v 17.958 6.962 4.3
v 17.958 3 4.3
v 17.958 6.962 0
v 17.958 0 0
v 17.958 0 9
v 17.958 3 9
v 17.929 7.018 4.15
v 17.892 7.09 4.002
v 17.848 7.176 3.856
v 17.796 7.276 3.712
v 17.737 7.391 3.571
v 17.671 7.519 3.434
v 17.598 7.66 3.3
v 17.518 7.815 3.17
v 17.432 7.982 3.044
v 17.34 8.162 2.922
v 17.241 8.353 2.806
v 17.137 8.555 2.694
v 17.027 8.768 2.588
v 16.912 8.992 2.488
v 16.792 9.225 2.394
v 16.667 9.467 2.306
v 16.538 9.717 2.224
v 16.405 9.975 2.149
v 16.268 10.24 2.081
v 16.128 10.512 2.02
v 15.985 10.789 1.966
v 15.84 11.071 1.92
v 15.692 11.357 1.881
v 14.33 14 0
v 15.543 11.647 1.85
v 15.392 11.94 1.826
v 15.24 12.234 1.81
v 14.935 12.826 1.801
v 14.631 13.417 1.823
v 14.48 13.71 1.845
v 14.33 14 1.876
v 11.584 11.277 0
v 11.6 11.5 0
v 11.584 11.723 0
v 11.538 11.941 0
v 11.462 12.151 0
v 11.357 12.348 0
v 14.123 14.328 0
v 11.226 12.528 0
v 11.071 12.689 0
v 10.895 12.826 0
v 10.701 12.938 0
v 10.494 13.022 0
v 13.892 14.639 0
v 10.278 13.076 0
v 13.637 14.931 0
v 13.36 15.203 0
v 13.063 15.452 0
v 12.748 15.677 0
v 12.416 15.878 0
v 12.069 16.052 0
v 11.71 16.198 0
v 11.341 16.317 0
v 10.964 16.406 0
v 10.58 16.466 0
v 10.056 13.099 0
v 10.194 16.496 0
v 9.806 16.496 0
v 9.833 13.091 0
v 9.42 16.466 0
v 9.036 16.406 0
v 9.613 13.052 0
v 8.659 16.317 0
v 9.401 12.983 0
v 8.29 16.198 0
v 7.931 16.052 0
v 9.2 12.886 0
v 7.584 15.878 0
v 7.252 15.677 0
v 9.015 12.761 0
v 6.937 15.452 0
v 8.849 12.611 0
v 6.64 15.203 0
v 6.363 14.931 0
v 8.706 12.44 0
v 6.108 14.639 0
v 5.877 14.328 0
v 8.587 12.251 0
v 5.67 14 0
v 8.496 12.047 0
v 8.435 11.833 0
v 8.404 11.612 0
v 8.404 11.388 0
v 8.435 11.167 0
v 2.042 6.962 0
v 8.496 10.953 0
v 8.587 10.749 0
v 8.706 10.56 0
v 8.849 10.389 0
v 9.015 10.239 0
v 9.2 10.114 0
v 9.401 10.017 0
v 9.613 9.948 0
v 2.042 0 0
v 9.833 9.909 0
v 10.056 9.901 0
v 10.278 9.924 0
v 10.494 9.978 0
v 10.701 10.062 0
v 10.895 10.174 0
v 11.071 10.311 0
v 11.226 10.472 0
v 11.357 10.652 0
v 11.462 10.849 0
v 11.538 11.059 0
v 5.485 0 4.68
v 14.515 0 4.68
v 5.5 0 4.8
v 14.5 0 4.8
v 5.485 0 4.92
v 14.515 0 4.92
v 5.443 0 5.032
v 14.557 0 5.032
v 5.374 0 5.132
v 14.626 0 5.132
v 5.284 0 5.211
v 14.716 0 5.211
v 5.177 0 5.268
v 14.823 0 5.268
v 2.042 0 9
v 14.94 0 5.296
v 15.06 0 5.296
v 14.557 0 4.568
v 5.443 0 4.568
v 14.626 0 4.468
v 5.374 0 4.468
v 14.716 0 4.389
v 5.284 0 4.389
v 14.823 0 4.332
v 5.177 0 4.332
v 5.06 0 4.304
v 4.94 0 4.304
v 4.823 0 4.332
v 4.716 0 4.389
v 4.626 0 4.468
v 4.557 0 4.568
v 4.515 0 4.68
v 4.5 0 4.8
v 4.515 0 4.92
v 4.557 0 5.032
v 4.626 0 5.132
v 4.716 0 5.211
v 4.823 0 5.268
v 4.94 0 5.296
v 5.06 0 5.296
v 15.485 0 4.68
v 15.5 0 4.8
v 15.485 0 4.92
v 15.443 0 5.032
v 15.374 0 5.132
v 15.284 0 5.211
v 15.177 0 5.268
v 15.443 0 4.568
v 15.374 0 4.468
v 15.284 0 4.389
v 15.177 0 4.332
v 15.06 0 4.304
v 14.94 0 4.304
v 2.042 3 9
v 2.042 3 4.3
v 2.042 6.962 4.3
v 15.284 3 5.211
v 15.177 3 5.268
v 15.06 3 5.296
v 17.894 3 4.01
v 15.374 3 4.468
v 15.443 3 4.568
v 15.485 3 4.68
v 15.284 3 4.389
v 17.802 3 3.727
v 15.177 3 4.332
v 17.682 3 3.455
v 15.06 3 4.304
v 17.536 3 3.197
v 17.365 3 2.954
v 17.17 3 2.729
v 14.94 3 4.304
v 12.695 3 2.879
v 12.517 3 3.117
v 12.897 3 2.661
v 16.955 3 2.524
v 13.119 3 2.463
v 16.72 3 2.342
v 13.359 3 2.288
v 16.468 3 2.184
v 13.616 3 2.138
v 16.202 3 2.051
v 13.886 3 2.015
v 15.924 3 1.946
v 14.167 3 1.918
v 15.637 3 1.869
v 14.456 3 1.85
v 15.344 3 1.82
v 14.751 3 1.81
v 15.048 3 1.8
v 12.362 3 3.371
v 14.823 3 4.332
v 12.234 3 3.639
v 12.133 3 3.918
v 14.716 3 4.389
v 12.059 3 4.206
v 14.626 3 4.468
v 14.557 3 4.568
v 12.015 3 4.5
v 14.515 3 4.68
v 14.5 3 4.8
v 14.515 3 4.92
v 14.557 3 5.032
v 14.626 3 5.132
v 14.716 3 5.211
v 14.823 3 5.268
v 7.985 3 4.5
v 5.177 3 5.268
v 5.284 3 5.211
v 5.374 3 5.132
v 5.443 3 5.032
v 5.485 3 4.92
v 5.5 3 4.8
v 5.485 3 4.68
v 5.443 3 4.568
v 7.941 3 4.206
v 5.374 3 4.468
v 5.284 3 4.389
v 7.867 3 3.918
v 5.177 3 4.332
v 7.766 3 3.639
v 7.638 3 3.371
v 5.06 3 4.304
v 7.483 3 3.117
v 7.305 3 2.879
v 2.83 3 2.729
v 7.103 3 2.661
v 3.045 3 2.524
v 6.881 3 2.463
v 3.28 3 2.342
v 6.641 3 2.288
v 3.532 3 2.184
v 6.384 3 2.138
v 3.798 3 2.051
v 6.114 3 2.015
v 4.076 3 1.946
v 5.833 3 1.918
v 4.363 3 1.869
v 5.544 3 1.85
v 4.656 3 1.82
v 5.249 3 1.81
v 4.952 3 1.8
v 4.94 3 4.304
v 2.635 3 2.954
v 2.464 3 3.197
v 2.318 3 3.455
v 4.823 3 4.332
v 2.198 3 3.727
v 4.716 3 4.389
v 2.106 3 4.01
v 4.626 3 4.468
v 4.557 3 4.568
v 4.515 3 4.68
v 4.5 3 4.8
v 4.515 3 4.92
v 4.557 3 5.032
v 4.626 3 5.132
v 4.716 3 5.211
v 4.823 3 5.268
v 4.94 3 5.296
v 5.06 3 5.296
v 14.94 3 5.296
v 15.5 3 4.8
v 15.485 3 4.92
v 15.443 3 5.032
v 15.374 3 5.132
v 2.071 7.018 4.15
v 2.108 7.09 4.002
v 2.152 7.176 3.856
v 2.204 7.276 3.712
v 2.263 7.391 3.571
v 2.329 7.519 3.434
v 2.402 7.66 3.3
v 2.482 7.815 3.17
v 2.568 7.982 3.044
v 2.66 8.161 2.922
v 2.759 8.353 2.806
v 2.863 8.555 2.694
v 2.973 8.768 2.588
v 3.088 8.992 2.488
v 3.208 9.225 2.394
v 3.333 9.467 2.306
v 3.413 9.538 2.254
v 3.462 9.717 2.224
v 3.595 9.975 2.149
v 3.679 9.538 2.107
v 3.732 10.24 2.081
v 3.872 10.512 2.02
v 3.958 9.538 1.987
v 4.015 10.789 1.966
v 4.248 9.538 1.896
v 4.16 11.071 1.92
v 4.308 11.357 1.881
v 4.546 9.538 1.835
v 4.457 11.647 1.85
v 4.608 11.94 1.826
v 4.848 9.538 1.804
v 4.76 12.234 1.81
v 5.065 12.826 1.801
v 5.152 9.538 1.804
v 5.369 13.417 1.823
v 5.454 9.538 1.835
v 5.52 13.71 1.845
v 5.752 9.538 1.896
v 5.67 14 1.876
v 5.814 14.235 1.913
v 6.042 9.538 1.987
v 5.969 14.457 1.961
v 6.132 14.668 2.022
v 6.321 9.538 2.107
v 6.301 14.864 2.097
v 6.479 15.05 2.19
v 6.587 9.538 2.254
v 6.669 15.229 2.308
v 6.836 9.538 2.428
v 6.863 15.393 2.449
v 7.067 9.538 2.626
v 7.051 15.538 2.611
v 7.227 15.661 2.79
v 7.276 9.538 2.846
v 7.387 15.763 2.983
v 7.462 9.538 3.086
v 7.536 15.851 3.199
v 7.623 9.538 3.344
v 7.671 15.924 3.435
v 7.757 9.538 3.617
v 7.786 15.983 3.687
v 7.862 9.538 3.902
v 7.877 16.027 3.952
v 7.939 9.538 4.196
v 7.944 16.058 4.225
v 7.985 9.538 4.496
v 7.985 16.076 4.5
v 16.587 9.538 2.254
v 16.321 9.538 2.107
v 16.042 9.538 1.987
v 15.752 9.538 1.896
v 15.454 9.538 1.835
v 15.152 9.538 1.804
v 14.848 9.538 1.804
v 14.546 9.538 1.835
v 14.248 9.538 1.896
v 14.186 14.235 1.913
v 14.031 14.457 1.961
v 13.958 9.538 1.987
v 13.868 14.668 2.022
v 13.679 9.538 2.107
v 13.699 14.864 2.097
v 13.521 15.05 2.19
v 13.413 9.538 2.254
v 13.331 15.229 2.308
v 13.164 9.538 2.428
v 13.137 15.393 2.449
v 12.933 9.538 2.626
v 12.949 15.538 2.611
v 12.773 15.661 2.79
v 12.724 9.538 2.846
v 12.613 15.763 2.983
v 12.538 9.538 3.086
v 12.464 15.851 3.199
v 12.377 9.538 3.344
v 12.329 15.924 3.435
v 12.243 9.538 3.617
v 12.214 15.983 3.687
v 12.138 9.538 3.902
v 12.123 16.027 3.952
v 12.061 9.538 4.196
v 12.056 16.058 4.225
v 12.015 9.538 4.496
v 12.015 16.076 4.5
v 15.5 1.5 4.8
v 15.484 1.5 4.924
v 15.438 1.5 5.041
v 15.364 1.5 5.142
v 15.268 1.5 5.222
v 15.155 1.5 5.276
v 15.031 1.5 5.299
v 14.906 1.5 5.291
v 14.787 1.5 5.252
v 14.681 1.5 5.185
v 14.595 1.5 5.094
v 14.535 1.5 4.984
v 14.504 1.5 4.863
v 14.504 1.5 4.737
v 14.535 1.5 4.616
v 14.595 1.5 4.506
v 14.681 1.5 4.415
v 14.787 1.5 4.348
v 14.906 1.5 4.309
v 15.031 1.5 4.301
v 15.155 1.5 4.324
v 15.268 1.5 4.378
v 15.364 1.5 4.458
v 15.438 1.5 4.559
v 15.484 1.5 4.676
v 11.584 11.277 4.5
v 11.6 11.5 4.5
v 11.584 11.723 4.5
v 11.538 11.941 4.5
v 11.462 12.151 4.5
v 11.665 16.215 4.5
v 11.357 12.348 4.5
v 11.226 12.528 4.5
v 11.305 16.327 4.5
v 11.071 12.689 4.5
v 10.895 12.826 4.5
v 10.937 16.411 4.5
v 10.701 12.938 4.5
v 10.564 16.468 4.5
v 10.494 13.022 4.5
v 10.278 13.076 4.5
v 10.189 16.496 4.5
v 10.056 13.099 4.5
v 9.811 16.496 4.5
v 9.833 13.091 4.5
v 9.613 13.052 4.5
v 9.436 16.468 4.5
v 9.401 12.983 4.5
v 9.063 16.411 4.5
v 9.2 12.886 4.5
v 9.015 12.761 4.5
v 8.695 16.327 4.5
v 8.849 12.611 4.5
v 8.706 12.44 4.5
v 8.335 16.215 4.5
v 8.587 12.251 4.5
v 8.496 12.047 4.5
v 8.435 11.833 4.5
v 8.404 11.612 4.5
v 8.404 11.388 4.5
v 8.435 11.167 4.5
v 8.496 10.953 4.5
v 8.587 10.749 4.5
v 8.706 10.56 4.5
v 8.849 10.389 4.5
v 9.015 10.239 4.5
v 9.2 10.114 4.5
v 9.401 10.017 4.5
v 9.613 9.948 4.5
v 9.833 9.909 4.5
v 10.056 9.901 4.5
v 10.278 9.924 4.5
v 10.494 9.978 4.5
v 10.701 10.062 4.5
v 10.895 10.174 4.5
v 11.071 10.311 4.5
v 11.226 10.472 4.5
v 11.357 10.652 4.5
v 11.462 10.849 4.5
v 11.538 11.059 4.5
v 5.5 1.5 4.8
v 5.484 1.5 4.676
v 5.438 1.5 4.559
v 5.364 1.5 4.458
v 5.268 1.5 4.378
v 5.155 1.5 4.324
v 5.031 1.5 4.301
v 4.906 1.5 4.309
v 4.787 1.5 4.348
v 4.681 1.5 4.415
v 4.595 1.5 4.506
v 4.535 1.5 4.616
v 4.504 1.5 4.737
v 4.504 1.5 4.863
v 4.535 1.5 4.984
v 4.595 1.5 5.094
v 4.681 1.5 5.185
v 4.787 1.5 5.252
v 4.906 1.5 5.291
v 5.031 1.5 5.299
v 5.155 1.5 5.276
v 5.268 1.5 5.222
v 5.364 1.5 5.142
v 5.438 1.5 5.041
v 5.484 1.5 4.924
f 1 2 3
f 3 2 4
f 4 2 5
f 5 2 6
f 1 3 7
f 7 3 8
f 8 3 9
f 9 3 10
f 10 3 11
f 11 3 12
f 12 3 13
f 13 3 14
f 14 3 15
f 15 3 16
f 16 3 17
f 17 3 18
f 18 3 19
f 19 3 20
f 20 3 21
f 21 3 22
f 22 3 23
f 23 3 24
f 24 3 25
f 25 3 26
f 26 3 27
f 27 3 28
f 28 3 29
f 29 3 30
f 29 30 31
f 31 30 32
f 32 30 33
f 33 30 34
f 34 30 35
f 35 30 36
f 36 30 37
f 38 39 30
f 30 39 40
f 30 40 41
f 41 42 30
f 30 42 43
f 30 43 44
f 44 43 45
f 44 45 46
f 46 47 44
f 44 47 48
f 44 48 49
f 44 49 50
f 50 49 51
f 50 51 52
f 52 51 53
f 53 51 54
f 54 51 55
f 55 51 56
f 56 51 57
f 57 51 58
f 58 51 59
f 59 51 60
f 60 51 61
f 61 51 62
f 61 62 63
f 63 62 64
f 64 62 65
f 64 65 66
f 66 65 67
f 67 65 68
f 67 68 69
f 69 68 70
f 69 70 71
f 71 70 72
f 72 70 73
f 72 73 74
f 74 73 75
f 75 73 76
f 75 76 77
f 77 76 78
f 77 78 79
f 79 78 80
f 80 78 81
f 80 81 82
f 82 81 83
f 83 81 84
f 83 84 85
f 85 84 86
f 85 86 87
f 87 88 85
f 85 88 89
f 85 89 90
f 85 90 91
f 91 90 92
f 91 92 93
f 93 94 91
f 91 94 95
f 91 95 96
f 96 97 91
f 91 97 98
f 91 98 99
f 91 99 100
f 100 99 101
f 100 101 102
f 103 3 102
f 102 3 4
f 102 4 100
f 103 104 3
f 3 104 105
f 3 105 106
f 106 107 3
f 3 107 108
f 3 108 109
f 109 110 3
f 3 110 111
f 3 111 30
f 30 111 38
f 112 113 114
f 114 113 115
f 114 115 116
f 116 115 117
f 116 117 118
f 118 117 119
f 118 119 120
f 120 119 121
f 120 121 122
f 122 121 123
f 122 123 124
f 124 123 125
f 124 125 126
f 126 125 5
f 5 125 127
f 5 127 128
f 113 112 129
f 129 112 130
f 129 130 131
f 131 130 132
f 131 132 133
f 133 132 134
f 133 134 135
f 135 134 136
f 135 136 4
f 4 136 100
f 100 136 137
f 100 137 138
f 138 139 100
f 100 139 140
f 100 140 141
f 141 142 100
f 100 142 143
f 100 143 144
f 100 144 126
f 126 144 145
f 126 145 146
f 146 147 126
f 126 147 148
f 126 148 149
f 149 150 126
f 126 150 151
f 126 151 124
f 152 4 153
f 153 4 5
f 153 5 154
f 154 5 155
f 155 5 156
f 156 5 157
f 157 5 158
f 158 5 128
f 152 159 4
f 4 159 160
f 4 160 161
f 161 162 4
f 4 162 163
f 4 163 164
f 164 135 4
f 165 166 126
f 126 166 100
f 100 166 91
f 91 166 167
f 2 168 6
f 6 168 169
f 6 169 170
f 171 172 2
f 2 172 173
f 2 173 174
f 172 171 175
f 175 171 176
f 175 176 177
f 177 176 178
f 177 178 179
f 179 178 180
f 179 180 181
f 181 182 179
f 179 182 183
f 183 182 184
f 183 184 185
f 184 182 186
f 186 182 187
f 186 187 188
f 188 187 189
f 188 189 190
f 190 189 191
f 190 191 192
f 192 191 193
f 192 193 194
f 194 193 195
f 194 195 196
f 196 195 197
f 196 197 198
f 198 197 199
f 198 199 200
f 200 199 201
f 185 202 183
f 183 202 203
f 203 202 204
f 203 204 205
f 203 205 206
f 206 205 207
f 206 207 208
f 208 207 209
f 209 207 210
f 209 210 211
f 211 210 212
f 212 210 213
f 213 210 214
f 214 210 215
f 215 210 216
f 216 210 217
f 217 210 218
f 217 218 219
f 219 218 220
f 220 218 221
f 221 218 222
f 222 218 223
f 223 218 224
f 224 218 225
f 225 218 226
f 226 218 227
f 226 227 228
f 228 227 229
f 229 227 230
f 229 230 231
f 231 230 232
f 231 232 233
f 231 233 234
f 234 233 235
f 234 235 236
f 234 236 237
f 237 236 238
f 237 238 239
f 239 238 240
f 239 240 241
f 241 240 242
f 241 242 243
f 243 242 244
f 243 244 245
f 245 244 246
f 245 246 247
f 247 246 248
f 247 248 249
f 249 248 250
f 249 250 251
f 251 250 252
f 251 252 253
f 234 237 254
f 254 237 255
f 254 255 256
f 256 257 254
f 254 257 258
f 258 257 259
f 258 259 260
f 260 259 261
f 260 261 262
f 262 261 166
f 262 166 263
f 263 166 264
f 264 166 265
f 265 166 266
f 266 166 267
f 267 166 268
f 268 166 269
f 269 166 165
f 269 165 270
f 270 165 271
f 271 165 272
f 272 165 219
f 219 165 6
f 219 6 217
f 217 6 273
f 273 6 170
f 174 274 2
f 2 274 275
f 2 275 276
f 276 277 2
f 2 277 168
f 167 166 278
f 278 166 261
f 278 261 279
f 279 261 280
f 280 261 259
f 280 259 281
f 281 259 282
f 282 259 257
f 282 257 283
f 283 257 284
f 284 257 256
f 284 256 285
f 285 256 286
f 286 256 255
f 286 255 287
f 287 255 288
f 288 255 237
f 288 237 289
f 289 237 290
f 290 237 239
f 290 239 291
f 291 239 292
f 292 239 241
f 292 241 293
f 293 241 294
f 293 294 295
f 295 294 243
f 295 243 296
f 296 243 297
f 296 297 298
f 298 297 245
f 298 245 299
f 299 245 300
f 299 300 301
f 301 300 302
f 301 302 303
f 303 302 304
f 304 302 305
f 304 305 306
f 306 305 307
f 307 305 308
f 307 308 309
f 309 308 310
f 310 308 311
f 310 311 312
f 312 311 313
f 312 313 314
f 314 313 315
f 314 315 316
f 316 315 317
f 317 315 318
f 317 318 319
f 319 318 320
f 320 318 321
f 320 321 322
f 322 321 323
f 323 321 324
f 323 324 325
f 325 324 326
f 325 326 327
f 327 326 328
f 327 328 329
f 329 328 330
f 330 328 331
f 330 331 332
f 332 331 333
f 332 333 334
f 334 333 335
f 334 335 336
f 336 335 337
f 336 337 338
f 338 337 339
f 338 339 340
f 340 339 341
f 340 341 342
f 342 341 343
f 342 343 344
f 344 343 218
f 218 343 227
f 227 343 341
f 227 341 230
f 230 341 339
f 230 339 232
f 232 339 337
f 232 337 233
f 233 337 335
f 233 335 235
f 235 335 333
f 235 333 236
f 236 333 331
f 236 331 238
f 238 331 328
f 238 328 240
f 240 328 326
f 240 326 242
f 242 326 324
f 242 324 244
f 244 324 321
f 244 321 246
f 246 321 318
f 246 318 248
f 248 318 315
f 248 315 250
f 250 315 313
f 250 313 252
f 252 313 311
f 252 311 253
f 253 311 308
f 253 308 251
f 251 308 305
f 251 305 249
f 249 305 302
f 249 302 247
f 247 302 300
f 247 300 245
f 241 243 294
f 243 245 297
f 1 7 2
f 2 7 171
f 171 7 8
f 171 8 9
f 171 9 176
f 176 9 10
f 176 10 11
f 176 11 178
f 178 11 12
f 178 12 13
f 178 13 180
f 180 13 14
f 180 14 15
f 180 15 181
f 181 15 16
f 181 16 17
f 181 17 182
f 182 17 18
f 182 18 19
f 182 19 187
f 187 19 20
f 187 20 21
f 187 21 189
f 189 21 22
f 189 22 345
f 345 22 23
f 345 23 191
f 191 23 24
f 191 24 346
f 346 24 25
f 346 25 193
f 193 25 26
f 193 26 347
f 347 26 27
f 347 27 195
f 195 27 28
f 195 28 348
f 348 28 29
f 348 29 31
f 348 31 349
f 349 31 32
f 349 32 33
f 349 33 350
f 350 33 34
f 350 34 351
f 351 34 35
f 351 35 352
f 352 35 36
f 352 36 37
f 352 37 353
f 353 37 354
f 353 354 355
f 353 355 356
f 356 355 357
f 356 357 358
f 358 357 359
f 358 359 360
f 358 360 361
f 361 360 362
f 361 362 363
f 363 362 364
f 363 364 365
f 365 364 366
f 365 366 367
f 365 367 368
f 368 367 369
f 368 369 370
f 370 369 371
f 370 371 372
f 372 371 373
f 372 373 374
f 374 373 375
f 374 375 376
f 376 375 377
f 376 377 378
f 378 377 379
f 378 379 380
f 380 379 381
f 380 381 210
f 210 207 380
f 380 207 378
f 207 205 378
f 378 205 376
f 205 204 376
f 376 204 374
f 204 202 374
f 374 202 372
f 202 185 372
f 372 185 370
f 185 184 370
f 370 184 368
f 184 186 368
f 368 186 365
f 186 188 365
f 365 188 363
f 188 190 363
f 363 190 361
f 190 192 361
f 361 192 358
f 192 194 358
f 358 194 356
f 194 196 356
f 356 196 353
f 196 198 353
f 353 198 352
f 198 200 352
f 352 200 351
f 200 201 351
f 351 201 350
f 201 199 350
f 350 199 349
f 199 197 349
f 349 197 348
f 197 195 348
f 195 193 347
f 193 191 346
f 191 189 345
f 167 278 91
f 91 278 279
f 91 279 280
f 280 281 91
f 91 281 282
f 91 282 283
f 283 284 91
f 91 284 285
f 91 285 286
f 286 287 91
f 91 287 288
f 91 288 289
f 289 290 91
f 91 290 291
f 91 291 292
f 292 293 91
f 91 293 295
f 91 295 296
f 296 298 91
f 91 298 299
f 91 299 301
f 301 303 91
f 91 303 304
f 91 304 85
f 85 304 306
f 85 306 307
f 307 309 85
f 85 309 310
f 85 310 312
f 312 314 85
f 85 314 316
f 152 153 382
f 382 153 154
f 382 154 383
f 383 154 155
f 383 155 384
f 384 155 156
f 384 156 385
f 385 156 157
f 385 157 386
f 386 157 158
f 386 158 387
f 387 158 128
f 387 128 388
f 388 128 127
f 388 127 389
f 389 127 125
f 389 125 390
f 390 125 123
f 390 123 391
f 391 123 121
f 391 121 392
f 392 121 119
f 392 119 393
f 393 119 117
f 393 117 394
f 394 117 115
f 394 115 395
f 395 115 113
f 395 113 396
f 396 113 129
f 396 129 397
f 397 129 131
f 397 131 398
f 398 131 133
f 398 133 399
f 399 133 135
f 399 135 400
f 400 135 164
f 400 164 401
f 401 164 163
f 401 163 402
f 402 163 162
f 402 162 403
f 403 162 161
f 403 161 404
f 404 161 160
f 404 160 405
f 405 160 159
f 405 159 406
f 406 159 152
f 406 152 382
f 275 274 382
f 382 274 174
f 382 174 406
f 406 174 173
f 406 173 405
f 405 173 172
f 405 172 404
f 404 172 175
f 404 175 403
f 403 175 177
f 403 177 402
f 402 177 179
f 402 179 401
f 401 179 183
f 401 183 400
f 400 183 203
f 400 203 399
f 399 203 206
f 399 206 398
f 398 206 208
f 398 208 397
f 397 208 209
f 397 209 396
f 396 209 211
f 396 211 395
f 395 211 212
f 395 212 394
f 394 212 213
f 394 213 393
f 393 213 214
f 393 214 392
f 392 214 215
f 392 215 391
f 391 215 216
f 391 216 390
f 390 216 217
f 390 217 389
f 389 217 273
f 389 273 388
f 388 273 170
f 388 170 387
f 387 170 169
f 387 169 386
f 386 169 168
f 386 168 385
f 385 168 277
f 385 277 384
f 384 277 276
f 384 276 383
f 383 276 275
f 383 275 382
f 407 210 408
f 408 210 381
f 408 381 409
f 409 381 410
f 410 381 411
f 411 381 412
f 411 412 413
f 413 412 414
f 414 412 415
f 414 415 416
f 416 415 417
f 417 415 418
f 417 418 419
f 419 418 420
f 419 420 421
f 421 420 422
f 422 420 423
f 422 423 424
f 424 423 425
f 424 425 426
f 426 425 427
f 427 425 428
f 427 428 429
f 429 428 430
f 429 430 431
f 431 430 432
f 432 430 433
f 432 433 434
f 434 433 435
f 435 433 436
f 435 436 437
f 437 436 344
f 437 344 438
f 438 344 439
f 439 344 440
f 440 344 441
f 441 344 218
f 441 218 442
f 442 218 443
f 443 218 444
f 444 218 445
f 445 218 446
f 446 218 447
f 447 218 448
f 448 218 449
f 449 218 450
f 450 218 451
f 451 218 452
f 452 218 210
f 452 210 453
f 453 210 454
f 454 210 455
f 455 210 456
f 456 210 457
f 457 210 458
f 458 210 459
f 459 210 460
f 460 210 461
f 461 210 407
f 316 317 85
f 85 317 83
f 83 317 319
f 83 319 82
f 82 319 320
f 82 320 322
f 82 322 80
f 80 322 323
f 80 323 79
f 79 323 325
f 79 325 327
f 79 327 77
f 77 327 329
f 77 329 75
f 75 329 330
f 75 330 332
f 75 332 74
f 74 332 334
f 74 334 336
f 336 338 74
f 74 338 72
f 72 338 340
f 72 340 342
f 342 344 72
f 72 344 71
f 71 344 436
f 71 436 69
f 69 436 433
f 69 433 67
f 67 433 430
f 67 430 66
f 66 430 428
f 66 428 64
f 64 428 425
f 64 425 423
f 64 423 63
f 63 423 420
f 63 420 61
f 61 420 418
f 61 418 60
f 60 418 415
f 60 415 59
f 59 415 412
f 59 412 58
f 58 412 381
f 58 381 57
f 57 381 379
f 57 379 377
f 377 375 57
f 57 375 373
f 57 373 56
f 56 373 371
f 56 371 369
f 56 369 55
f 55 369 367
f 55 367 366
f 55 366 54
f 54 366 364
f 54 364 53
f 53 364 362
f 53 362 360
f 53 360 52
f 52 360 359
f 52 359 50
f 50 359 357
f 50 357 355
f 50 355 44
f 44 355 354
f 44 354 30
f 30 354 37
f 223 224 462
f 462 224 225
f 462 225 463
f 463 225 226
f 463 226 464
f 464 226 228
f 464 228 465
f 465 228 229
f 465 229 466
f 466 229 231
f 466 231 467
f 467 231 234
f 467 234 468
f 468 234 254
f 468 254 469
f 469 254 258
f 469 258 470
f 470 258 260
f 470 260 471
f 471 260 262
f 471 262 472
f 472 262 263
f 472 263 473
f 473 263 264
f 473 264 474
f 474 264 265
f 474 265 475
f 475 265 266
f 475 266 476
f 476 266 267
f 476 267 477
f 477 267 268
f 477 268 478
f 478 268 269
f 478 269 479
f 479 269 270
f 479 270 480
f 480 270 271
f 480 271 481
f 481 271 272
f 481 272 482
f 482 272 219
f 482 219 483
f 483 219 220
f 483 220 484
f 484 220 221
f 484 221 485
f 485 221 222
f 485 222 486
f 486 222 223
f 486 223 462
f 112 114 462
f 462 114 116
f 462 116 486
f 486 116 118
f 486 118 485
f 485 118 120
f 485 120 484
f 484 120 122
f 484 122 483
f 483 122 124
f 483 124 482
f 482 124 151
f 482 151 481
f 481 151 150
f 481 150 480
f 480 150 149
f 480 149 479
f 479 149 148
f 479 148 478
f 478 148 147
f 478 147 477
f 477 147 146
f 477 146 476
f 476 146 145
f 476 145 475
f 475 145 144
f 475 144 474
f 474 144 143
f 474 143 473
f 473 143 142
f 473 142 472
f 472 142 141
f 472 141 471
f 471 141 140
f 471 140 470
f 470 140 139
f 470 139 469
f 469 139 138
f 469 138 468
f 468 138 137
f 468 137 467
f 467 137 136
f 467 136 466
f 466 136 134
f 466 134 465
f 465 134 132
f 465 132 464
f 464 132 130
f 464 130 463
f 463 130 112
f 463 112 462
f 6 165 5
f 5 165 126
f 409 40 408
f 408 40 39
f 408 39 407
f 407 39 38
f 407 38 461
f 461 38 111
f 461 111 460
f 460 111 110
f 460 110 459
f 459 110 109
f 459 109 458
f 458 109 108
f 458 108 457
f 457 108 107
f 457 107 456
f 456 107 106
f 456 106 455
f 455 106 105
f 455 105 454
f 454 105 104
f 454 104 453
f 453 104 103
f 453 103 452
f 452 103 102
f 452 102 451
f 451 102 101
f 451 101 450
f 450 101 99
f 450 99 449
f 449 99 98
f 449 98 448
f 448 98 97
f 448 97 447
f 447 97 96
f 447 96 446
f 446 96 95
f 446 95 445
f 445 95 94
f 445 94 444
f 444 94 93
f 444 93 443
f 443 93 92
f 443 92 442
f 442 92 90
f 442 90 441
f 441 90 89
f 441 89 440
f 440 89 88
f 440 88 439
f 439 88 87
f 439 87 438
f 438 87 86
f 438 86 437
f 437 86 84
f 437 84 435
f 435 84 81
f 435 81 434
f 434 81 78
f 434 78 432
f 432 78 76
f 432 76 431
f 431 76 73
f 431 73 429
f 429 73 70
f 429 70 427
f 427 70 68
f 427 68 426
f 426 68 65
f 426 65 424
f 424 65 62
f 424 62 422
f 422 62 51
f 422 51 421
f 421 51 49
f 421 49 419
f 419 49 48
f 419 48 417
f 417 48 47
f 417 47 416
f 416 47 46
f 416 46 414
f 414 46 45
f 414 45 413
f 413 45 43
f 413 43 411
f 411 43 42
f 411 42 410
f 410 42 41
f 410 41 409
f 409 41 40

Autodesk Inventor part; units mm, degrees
ref_plane "YZ Plane" through (0, 0, 0) normal (1, 0, 0) x (0, 1, 0)
ref_plane "XZ Plane" through (0, 0, 0) normal (0, 1, 0) x (-1, 0, 0)
ref_plane "XY Plane" through (0, 0, 0) normal (0, 0, 1) x (1, 0, 0)
sketch "Sketch1" plane through (0, 0, 0) normal (0, 0, 1) x (1, 0, 0)
  circle A0 centre (10, 11.5) radius 1.6
  line L0 (0, 0) -> (20.0001, 0)
  line L1 (0, 0) -> (0, 3)
  line L2 (20.0001, 0) -> (20.0001, 3)
  line L3 (0, 3) -> (16, 3) construction
  line L4 (20.0001, 3) -> (36.0001, 3) construction
  arc A1 (14.3301, 14) -> (5.6699, 14) centre (10, 11.5) ccw
  line L5 (10, 11.5) -> (5.6699, 14) construction
  line L6 (10, 11.5) -> (14.3301, 14) construction
  line L7 (5.6699, 14) -> (0, 3)
  line L8 (14.3301, 14) -> (20.0001, 3)
  dimension "d17" = 3
  dimension "d18" = 3
  dimension "d19" = 11.5
  dimension "d23" = 90
  dimension "d24" = 90
  dimension "d25" = 10
  dimension "d31" = 5
  dimension "d32" = 120
  dimension "d33" = 14
extrude "Extrusion1" add sketch "Sketch1" along normal blind 4.5
sketch "Sketch4" plane through (0, 0, 4.5) normal (0, 0, 1) x (1, 0, 0)
  line L0 (0, 3) -> (0, 0) projected
  line L1 (20.0001, 0) -> (20.0001, 3) projected
  line L2 (0, 0) -> (20.0001, 0)
  line L3 (20.0001, 0) -> (20.0001, 3)
  line L4 (3.884, 22.9404) -> (-0.9789, 3.2417) projected
  line L5 (20.0001, 3) -> (0, 3)
  line L6 (0, 3) -> (0, 0)
extrude "Extrusion2" add sketch "Sketch4" along normal blind 4.5
sketch "Sketch5" plane through (0, 0, 0) normal (0, -1, 0) x (1, 0, 0)
  circle A0 centre (5, 4.8) radius 0.5
  circle A1 centre (15, 4.8) radius 0.5
  line L0 (0, 0) -> (20.0001, 0) projected
  dimension "d13" = 1
  dimension "d14" = 1
  dimension "d38" = 4.8
  dimension "d39" = 4.8
extrude "Extrusion3" cut sketch "Sketch5" against normal through all
sketch "Sketch6" plane through (0, 3, 9) normal (0, 1, 0) x (1, 0, 0)
  circle A0 centre (5, 4.2) radius 0.5 projected
  circle A1 centre (5, 4.2) radius 3
  circle A2 centre (15, 4.2) radius 0.5 projected
  circle A3 centre (15, 4.2) radius 3
  line L0 (0, 9) -> (20.0001, 9) projected
  dimension "d34" = 6
  dimension "d35" = 6
  dimension "d40" = 4.8
  dimension "d41" = 4.8
extrude "Extrusion4" cut sketch "Sketch6" along normal up to next
sketch "Sketch7" plane through (0, 0, 0) normal (0, -1, 0) x (1, 0, 0)
  line L0 (0, 0) -> (0, 9) projected
  line L1 (2.042, 0) -> (0, 0)
  line L2 (0, 0) -> (0, 9)
  line L3 (0, 9) -> (2.042, 9)
  line L4 (2.042, 9) -> (2.042, 0)
extrude "Extrusion5" cut sketch "Sketch7" against normal up to next
sketch "Sketch8" plane through (20.0001, 0, 0) normal (0, -1, 0) x (1, 0, 0)
  line L0 (0, 4.5) -> (0, 9) projected
  line L1 (-2.042, 0) -> (0, 0)
  line L2 (0, 0) -> (0, 9)
  line L3 (0, 9) -> (-2.042, 9)
  line L4 (-2.042, 9) -> (-2.042, 0)
  point P0 (-20.0001, 0)
extrude "Extrusion6" cut sketch "Sketch8" against normal up to next
properties part number "lower_deck_shaft_mount_printing_org"
